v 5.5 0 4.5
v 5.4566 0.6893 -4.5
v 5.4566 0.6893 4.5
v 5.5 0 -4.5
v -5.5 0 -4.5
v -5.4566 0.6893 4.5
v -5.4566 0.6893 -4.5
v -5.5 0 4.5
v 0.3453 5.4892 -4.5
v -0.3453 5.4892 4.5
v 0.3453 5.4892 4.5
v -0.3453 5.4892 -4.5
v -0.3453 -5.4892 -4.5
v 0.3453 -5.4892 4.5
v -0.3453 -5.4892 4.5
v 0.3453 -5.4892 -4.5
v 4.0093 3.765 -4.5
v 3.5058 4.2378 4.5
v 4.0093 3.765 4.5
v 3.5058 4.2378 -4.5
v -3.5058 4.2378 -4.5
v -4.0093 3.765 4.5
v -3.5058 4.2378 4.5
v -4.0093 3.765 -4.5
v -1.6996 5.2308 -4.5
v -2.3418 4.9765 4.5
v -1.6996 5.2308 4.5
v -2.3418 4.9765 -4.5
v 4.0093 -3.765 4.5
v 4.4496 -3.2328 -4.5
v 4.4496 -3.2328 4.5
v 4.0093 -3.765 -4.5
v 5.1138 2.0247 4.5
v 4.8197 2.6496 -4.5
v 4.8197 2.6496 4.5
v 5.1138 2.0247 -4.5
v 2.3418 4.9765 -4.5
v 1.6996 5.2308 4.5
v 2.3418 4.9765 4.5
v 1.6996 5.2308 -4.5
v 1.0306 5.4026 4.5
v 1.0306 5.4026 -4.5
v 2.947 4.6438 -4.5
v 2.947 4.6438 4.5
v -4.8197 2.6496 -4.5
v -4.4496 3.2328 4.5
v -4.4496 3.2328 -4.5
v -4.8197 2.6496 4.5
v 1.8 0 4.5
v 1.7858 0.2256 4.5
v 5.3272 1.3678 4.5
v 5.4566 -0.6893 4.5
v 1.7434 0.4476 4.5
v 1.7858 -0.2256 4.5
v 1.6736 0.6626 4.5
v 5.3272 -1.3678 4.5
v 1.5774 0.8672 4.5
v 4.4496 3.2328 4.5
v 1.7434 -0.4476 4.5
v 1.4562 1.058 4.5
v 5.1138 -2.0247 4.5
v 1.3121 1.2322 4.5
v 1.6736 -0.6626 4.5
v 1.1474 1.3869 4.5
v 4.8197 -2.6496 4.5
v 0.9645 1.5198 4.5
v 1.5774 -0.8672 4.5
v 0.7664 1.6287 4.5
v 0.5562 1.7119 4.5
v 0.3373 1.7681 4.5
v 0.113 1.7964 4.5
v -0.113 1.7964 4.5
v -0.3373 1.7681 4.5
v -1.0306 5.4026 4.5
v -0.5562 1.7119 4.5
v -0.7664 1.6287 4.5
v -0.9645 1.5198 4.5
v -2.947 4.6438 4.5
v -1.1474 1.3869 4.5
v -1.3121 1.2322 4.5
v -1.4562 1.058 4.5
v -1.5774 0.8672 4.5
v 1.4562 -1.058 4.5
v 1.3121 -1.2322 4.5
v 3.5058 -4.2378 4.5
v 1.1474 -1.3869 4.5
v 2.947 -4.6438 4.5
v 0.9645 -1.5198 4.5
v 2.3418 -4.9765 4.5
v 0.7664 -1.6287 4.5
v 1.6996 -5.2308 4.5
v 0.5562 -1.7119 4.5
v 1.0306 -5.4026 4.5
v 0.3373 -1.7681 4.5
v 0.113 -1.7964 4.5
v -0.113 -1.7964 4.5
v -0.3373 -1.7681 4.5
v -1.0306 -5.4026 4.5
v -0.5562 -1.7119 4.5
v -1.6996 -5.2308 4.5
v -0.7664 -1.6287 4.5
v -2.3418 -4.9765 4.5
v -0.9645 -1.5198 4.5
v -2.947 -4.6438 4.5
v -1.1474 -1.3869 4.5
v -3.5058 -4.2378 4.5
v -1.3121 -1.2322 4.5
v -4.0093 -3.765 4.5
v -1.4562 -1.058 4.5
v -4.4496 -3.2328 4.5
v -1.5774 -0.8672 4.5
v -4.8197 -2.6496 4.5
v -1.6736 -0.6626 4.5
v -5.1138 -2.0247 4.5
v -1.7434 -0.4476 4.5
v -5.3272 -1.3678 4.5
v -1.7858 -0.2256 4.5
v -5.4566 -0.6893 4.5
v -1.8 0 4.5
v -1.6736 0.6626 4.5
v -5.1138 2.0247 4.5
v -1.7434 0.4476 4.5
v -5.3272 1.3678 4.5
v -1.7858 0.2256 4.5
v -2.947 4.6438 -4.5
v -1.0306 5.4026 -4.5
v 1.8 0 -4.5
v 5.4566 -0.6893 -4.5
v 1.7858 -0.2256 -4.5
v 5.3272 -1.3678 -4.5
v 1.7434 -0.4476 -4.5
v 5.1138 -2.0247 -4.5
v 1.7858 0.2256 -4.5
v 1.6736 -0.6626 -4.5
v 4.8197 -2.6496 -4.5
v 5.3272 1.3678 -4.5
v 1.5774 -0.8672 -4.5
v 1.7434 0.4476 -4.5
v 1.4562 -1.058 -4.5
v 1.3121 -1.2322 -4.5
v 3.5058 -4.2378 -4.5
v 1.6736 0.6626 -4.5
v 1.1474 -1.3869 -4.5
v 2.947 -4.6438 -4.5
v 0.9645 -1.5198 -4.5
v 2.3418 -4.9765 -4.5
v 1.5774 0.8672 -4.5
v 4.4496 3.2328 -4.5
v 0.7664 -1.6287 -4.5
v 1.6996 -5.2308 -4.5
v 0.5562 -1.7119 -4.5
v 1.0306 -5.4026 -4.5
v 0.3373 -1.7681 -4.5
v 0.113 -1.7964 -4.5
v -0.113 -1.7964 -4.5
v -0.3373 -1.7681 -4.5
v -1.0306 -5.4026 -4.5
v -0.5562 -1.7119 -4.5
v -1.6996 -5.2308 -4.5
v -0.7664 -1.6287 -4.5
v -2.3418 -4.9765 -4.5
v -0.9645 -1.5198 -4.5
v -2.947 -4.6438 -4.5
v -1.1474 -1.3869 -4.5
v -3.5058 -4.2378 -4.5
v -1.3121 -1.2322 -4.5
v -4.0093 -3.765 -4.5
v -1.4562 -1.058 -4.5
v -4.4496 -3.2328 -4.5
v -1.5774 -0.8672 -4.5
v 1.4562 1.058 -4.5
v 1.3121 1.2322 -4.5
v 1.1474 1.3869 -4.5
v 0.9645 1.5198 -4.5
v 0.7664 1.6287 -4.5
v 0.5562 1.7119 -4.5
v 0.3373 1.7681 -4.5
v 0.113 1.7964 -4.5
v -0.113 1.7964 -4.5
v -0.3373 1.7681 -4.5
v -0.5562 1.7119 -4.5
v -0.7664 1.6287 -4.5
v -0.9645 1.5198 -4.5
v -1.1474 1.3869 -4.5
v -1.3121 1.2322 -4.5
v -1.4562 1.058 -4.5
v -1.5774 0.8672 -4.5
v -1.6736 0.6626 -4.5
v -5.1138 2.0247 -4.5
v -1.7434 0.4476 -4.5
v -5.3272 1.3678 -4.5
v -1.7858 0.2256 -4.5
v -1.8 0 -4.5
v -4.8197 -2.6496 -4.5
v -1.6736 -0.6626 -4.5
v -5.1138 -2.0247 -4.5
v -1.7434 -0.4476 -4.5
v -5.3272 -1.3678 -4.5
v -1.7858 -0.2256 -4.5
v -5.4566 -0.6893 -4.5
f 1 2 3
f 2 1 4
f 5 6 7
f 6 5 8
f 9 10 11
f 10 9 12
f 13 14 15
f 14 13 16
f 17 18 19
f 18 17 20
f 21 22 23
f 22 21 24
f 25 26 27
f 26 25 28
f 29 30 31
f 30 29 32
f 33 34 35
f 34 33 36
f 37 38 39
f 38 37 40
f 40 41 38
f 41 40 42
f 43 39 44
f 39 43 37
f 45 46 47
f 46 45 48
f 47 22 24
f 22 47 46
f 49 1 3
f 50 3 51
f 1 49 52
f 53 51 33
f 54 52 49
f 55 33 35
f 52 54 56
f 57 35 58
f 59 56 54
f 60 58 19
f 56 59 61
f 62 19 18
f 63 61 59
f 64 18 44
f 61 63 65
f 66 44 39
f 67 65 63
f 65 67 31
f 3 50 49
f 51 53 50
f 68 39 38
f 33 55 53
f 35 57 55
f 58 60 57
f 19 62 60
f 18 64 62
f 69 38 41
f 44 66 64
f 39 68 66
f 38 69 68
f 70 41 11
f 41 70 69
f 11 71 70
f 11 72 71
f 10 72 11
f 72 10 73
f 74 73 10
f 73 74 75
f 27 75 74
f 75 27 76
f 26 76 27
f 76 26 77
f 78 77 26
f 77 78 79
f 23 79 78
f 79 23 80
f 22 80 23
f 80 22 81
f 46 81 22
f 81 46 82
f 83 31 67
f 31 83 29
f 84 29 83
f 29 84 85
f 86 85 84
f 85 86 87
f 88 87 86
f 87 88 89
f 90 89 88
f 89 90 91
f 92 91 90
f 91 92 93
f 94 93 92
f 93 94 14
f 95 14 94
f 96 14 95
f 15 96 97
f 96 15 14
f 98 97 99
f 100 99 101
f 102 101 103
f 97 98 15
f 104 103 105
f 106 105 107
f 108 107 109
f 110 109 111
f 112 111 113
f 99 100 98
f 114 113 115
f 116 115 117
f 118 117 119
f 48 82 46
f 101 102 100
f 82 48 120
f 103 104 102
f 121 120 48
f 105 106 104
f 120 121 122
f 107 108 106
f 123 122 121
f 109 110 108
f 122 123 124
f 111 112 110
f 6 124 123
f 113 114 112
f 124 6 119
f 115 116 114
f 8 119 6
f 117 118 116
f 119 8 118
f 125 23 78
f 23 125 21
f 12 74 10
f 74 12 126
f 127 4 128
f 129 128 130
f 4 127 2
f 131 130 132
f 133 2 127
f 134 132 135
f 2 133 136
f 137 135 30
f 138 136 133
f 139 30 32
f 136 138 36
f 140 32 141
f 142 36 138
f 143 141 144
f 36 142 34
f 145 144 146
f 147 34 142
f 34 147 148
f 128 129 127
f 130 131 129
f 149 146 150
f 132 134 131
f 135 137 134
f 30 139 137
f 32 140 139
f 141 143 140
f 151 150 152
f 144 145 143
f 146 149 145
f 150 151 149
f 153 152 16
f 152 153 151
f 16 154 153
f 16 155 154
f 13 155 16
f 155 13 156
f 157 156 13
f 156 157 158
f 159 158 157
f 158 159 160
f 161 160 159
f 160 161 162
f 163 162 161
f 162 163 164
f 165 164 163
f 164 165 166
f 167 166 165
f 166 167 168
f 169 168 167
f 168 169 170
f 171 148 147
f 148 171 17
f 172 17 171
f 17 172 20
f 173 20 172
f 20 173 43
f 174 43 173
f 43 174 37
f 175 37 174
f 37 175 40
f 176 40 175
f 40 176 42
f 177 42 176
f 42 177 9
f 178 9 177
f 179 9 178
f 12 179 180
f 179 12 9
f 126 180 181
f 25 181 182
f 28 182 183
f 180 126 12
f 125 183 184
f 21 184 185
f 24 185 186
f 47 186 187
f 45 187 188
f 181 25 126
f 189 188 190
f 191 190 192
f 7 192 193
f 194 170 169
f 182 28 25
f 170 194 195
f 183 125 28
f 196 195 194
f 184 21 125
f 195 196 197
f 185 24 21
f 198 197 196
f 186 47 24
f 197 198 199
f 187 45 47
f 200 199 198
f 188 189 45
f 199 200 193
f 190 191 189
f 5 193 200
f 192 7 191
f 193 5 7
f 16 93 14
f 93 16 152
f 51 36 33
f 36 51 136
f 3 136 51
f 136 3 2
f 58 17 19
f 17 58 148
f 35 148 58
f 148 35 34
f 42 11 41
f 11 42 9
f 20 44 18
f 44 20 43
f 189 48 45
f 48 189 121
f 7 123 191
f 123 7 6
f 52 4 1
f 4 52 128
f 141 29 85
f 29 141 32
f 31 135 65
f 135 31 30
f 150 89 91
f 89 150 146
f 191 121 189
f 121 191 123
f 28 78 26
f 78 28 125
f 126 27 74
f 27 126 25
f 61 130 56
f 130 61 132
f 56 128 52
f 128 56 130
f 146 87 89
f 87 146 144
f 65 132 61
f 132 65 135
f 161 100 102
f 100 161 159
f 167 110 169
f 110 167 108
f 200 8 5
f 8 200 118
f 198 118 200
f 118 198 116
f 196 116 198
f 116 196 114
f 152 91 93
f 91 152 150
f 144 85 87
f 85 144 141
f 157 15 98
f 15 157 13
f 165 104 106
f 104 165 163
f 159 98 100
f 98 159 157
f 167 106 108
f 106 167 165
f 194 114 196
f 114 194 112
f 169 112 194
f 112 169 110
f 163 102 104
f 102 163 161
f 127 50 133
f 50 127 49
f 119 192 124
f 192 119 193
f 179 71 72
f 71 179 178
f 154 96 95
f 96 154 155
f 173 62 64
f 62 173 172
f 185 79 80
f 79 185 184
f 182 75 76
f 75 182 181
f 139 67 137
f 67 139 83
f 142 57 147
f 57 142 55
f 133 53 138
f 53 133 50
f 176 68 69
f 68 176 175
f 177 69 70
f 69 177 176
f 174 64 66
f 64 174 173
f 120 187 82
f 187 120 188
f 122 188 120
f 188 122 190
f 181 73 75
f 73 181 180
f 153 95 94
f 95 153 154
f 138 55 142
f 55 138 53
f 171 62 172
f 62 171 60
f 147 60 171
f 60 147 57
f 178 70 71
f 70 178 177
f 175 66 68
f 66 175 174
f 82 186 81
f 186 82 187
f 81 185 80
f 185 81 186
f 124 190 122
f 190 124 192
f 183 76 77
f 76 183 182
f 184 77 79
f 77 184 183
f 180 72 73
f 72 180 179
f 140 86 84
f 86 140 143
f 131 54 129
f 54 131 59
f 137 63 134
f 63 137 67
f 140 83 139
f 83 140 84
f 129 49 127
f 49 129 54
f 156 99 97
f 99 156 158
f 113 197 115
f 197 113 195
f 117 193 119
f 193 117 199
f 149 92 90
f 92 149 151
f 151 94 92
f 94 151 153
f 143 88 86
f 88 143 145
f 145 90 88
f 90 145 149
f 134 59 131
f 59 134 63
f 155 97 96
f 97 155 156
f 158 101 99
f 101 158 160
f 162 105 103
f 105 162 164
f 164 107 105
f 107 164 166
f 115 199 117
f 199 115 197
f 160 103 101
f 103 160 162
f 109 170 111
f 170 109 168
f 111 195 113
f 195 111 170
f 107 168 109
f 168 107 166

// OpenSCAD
$fn = 50;


difference() {
	union() {
		translate(v = [0, 0, -4.5000000000]) {
			cylinder(h = 9, r = 5.5000000000);
		}
	}
	union() {
		translate(v = [0, 0, -100.0000000000]) {
			cylinder(h = 200, r = 1.8000000000);
		}
	}
}
